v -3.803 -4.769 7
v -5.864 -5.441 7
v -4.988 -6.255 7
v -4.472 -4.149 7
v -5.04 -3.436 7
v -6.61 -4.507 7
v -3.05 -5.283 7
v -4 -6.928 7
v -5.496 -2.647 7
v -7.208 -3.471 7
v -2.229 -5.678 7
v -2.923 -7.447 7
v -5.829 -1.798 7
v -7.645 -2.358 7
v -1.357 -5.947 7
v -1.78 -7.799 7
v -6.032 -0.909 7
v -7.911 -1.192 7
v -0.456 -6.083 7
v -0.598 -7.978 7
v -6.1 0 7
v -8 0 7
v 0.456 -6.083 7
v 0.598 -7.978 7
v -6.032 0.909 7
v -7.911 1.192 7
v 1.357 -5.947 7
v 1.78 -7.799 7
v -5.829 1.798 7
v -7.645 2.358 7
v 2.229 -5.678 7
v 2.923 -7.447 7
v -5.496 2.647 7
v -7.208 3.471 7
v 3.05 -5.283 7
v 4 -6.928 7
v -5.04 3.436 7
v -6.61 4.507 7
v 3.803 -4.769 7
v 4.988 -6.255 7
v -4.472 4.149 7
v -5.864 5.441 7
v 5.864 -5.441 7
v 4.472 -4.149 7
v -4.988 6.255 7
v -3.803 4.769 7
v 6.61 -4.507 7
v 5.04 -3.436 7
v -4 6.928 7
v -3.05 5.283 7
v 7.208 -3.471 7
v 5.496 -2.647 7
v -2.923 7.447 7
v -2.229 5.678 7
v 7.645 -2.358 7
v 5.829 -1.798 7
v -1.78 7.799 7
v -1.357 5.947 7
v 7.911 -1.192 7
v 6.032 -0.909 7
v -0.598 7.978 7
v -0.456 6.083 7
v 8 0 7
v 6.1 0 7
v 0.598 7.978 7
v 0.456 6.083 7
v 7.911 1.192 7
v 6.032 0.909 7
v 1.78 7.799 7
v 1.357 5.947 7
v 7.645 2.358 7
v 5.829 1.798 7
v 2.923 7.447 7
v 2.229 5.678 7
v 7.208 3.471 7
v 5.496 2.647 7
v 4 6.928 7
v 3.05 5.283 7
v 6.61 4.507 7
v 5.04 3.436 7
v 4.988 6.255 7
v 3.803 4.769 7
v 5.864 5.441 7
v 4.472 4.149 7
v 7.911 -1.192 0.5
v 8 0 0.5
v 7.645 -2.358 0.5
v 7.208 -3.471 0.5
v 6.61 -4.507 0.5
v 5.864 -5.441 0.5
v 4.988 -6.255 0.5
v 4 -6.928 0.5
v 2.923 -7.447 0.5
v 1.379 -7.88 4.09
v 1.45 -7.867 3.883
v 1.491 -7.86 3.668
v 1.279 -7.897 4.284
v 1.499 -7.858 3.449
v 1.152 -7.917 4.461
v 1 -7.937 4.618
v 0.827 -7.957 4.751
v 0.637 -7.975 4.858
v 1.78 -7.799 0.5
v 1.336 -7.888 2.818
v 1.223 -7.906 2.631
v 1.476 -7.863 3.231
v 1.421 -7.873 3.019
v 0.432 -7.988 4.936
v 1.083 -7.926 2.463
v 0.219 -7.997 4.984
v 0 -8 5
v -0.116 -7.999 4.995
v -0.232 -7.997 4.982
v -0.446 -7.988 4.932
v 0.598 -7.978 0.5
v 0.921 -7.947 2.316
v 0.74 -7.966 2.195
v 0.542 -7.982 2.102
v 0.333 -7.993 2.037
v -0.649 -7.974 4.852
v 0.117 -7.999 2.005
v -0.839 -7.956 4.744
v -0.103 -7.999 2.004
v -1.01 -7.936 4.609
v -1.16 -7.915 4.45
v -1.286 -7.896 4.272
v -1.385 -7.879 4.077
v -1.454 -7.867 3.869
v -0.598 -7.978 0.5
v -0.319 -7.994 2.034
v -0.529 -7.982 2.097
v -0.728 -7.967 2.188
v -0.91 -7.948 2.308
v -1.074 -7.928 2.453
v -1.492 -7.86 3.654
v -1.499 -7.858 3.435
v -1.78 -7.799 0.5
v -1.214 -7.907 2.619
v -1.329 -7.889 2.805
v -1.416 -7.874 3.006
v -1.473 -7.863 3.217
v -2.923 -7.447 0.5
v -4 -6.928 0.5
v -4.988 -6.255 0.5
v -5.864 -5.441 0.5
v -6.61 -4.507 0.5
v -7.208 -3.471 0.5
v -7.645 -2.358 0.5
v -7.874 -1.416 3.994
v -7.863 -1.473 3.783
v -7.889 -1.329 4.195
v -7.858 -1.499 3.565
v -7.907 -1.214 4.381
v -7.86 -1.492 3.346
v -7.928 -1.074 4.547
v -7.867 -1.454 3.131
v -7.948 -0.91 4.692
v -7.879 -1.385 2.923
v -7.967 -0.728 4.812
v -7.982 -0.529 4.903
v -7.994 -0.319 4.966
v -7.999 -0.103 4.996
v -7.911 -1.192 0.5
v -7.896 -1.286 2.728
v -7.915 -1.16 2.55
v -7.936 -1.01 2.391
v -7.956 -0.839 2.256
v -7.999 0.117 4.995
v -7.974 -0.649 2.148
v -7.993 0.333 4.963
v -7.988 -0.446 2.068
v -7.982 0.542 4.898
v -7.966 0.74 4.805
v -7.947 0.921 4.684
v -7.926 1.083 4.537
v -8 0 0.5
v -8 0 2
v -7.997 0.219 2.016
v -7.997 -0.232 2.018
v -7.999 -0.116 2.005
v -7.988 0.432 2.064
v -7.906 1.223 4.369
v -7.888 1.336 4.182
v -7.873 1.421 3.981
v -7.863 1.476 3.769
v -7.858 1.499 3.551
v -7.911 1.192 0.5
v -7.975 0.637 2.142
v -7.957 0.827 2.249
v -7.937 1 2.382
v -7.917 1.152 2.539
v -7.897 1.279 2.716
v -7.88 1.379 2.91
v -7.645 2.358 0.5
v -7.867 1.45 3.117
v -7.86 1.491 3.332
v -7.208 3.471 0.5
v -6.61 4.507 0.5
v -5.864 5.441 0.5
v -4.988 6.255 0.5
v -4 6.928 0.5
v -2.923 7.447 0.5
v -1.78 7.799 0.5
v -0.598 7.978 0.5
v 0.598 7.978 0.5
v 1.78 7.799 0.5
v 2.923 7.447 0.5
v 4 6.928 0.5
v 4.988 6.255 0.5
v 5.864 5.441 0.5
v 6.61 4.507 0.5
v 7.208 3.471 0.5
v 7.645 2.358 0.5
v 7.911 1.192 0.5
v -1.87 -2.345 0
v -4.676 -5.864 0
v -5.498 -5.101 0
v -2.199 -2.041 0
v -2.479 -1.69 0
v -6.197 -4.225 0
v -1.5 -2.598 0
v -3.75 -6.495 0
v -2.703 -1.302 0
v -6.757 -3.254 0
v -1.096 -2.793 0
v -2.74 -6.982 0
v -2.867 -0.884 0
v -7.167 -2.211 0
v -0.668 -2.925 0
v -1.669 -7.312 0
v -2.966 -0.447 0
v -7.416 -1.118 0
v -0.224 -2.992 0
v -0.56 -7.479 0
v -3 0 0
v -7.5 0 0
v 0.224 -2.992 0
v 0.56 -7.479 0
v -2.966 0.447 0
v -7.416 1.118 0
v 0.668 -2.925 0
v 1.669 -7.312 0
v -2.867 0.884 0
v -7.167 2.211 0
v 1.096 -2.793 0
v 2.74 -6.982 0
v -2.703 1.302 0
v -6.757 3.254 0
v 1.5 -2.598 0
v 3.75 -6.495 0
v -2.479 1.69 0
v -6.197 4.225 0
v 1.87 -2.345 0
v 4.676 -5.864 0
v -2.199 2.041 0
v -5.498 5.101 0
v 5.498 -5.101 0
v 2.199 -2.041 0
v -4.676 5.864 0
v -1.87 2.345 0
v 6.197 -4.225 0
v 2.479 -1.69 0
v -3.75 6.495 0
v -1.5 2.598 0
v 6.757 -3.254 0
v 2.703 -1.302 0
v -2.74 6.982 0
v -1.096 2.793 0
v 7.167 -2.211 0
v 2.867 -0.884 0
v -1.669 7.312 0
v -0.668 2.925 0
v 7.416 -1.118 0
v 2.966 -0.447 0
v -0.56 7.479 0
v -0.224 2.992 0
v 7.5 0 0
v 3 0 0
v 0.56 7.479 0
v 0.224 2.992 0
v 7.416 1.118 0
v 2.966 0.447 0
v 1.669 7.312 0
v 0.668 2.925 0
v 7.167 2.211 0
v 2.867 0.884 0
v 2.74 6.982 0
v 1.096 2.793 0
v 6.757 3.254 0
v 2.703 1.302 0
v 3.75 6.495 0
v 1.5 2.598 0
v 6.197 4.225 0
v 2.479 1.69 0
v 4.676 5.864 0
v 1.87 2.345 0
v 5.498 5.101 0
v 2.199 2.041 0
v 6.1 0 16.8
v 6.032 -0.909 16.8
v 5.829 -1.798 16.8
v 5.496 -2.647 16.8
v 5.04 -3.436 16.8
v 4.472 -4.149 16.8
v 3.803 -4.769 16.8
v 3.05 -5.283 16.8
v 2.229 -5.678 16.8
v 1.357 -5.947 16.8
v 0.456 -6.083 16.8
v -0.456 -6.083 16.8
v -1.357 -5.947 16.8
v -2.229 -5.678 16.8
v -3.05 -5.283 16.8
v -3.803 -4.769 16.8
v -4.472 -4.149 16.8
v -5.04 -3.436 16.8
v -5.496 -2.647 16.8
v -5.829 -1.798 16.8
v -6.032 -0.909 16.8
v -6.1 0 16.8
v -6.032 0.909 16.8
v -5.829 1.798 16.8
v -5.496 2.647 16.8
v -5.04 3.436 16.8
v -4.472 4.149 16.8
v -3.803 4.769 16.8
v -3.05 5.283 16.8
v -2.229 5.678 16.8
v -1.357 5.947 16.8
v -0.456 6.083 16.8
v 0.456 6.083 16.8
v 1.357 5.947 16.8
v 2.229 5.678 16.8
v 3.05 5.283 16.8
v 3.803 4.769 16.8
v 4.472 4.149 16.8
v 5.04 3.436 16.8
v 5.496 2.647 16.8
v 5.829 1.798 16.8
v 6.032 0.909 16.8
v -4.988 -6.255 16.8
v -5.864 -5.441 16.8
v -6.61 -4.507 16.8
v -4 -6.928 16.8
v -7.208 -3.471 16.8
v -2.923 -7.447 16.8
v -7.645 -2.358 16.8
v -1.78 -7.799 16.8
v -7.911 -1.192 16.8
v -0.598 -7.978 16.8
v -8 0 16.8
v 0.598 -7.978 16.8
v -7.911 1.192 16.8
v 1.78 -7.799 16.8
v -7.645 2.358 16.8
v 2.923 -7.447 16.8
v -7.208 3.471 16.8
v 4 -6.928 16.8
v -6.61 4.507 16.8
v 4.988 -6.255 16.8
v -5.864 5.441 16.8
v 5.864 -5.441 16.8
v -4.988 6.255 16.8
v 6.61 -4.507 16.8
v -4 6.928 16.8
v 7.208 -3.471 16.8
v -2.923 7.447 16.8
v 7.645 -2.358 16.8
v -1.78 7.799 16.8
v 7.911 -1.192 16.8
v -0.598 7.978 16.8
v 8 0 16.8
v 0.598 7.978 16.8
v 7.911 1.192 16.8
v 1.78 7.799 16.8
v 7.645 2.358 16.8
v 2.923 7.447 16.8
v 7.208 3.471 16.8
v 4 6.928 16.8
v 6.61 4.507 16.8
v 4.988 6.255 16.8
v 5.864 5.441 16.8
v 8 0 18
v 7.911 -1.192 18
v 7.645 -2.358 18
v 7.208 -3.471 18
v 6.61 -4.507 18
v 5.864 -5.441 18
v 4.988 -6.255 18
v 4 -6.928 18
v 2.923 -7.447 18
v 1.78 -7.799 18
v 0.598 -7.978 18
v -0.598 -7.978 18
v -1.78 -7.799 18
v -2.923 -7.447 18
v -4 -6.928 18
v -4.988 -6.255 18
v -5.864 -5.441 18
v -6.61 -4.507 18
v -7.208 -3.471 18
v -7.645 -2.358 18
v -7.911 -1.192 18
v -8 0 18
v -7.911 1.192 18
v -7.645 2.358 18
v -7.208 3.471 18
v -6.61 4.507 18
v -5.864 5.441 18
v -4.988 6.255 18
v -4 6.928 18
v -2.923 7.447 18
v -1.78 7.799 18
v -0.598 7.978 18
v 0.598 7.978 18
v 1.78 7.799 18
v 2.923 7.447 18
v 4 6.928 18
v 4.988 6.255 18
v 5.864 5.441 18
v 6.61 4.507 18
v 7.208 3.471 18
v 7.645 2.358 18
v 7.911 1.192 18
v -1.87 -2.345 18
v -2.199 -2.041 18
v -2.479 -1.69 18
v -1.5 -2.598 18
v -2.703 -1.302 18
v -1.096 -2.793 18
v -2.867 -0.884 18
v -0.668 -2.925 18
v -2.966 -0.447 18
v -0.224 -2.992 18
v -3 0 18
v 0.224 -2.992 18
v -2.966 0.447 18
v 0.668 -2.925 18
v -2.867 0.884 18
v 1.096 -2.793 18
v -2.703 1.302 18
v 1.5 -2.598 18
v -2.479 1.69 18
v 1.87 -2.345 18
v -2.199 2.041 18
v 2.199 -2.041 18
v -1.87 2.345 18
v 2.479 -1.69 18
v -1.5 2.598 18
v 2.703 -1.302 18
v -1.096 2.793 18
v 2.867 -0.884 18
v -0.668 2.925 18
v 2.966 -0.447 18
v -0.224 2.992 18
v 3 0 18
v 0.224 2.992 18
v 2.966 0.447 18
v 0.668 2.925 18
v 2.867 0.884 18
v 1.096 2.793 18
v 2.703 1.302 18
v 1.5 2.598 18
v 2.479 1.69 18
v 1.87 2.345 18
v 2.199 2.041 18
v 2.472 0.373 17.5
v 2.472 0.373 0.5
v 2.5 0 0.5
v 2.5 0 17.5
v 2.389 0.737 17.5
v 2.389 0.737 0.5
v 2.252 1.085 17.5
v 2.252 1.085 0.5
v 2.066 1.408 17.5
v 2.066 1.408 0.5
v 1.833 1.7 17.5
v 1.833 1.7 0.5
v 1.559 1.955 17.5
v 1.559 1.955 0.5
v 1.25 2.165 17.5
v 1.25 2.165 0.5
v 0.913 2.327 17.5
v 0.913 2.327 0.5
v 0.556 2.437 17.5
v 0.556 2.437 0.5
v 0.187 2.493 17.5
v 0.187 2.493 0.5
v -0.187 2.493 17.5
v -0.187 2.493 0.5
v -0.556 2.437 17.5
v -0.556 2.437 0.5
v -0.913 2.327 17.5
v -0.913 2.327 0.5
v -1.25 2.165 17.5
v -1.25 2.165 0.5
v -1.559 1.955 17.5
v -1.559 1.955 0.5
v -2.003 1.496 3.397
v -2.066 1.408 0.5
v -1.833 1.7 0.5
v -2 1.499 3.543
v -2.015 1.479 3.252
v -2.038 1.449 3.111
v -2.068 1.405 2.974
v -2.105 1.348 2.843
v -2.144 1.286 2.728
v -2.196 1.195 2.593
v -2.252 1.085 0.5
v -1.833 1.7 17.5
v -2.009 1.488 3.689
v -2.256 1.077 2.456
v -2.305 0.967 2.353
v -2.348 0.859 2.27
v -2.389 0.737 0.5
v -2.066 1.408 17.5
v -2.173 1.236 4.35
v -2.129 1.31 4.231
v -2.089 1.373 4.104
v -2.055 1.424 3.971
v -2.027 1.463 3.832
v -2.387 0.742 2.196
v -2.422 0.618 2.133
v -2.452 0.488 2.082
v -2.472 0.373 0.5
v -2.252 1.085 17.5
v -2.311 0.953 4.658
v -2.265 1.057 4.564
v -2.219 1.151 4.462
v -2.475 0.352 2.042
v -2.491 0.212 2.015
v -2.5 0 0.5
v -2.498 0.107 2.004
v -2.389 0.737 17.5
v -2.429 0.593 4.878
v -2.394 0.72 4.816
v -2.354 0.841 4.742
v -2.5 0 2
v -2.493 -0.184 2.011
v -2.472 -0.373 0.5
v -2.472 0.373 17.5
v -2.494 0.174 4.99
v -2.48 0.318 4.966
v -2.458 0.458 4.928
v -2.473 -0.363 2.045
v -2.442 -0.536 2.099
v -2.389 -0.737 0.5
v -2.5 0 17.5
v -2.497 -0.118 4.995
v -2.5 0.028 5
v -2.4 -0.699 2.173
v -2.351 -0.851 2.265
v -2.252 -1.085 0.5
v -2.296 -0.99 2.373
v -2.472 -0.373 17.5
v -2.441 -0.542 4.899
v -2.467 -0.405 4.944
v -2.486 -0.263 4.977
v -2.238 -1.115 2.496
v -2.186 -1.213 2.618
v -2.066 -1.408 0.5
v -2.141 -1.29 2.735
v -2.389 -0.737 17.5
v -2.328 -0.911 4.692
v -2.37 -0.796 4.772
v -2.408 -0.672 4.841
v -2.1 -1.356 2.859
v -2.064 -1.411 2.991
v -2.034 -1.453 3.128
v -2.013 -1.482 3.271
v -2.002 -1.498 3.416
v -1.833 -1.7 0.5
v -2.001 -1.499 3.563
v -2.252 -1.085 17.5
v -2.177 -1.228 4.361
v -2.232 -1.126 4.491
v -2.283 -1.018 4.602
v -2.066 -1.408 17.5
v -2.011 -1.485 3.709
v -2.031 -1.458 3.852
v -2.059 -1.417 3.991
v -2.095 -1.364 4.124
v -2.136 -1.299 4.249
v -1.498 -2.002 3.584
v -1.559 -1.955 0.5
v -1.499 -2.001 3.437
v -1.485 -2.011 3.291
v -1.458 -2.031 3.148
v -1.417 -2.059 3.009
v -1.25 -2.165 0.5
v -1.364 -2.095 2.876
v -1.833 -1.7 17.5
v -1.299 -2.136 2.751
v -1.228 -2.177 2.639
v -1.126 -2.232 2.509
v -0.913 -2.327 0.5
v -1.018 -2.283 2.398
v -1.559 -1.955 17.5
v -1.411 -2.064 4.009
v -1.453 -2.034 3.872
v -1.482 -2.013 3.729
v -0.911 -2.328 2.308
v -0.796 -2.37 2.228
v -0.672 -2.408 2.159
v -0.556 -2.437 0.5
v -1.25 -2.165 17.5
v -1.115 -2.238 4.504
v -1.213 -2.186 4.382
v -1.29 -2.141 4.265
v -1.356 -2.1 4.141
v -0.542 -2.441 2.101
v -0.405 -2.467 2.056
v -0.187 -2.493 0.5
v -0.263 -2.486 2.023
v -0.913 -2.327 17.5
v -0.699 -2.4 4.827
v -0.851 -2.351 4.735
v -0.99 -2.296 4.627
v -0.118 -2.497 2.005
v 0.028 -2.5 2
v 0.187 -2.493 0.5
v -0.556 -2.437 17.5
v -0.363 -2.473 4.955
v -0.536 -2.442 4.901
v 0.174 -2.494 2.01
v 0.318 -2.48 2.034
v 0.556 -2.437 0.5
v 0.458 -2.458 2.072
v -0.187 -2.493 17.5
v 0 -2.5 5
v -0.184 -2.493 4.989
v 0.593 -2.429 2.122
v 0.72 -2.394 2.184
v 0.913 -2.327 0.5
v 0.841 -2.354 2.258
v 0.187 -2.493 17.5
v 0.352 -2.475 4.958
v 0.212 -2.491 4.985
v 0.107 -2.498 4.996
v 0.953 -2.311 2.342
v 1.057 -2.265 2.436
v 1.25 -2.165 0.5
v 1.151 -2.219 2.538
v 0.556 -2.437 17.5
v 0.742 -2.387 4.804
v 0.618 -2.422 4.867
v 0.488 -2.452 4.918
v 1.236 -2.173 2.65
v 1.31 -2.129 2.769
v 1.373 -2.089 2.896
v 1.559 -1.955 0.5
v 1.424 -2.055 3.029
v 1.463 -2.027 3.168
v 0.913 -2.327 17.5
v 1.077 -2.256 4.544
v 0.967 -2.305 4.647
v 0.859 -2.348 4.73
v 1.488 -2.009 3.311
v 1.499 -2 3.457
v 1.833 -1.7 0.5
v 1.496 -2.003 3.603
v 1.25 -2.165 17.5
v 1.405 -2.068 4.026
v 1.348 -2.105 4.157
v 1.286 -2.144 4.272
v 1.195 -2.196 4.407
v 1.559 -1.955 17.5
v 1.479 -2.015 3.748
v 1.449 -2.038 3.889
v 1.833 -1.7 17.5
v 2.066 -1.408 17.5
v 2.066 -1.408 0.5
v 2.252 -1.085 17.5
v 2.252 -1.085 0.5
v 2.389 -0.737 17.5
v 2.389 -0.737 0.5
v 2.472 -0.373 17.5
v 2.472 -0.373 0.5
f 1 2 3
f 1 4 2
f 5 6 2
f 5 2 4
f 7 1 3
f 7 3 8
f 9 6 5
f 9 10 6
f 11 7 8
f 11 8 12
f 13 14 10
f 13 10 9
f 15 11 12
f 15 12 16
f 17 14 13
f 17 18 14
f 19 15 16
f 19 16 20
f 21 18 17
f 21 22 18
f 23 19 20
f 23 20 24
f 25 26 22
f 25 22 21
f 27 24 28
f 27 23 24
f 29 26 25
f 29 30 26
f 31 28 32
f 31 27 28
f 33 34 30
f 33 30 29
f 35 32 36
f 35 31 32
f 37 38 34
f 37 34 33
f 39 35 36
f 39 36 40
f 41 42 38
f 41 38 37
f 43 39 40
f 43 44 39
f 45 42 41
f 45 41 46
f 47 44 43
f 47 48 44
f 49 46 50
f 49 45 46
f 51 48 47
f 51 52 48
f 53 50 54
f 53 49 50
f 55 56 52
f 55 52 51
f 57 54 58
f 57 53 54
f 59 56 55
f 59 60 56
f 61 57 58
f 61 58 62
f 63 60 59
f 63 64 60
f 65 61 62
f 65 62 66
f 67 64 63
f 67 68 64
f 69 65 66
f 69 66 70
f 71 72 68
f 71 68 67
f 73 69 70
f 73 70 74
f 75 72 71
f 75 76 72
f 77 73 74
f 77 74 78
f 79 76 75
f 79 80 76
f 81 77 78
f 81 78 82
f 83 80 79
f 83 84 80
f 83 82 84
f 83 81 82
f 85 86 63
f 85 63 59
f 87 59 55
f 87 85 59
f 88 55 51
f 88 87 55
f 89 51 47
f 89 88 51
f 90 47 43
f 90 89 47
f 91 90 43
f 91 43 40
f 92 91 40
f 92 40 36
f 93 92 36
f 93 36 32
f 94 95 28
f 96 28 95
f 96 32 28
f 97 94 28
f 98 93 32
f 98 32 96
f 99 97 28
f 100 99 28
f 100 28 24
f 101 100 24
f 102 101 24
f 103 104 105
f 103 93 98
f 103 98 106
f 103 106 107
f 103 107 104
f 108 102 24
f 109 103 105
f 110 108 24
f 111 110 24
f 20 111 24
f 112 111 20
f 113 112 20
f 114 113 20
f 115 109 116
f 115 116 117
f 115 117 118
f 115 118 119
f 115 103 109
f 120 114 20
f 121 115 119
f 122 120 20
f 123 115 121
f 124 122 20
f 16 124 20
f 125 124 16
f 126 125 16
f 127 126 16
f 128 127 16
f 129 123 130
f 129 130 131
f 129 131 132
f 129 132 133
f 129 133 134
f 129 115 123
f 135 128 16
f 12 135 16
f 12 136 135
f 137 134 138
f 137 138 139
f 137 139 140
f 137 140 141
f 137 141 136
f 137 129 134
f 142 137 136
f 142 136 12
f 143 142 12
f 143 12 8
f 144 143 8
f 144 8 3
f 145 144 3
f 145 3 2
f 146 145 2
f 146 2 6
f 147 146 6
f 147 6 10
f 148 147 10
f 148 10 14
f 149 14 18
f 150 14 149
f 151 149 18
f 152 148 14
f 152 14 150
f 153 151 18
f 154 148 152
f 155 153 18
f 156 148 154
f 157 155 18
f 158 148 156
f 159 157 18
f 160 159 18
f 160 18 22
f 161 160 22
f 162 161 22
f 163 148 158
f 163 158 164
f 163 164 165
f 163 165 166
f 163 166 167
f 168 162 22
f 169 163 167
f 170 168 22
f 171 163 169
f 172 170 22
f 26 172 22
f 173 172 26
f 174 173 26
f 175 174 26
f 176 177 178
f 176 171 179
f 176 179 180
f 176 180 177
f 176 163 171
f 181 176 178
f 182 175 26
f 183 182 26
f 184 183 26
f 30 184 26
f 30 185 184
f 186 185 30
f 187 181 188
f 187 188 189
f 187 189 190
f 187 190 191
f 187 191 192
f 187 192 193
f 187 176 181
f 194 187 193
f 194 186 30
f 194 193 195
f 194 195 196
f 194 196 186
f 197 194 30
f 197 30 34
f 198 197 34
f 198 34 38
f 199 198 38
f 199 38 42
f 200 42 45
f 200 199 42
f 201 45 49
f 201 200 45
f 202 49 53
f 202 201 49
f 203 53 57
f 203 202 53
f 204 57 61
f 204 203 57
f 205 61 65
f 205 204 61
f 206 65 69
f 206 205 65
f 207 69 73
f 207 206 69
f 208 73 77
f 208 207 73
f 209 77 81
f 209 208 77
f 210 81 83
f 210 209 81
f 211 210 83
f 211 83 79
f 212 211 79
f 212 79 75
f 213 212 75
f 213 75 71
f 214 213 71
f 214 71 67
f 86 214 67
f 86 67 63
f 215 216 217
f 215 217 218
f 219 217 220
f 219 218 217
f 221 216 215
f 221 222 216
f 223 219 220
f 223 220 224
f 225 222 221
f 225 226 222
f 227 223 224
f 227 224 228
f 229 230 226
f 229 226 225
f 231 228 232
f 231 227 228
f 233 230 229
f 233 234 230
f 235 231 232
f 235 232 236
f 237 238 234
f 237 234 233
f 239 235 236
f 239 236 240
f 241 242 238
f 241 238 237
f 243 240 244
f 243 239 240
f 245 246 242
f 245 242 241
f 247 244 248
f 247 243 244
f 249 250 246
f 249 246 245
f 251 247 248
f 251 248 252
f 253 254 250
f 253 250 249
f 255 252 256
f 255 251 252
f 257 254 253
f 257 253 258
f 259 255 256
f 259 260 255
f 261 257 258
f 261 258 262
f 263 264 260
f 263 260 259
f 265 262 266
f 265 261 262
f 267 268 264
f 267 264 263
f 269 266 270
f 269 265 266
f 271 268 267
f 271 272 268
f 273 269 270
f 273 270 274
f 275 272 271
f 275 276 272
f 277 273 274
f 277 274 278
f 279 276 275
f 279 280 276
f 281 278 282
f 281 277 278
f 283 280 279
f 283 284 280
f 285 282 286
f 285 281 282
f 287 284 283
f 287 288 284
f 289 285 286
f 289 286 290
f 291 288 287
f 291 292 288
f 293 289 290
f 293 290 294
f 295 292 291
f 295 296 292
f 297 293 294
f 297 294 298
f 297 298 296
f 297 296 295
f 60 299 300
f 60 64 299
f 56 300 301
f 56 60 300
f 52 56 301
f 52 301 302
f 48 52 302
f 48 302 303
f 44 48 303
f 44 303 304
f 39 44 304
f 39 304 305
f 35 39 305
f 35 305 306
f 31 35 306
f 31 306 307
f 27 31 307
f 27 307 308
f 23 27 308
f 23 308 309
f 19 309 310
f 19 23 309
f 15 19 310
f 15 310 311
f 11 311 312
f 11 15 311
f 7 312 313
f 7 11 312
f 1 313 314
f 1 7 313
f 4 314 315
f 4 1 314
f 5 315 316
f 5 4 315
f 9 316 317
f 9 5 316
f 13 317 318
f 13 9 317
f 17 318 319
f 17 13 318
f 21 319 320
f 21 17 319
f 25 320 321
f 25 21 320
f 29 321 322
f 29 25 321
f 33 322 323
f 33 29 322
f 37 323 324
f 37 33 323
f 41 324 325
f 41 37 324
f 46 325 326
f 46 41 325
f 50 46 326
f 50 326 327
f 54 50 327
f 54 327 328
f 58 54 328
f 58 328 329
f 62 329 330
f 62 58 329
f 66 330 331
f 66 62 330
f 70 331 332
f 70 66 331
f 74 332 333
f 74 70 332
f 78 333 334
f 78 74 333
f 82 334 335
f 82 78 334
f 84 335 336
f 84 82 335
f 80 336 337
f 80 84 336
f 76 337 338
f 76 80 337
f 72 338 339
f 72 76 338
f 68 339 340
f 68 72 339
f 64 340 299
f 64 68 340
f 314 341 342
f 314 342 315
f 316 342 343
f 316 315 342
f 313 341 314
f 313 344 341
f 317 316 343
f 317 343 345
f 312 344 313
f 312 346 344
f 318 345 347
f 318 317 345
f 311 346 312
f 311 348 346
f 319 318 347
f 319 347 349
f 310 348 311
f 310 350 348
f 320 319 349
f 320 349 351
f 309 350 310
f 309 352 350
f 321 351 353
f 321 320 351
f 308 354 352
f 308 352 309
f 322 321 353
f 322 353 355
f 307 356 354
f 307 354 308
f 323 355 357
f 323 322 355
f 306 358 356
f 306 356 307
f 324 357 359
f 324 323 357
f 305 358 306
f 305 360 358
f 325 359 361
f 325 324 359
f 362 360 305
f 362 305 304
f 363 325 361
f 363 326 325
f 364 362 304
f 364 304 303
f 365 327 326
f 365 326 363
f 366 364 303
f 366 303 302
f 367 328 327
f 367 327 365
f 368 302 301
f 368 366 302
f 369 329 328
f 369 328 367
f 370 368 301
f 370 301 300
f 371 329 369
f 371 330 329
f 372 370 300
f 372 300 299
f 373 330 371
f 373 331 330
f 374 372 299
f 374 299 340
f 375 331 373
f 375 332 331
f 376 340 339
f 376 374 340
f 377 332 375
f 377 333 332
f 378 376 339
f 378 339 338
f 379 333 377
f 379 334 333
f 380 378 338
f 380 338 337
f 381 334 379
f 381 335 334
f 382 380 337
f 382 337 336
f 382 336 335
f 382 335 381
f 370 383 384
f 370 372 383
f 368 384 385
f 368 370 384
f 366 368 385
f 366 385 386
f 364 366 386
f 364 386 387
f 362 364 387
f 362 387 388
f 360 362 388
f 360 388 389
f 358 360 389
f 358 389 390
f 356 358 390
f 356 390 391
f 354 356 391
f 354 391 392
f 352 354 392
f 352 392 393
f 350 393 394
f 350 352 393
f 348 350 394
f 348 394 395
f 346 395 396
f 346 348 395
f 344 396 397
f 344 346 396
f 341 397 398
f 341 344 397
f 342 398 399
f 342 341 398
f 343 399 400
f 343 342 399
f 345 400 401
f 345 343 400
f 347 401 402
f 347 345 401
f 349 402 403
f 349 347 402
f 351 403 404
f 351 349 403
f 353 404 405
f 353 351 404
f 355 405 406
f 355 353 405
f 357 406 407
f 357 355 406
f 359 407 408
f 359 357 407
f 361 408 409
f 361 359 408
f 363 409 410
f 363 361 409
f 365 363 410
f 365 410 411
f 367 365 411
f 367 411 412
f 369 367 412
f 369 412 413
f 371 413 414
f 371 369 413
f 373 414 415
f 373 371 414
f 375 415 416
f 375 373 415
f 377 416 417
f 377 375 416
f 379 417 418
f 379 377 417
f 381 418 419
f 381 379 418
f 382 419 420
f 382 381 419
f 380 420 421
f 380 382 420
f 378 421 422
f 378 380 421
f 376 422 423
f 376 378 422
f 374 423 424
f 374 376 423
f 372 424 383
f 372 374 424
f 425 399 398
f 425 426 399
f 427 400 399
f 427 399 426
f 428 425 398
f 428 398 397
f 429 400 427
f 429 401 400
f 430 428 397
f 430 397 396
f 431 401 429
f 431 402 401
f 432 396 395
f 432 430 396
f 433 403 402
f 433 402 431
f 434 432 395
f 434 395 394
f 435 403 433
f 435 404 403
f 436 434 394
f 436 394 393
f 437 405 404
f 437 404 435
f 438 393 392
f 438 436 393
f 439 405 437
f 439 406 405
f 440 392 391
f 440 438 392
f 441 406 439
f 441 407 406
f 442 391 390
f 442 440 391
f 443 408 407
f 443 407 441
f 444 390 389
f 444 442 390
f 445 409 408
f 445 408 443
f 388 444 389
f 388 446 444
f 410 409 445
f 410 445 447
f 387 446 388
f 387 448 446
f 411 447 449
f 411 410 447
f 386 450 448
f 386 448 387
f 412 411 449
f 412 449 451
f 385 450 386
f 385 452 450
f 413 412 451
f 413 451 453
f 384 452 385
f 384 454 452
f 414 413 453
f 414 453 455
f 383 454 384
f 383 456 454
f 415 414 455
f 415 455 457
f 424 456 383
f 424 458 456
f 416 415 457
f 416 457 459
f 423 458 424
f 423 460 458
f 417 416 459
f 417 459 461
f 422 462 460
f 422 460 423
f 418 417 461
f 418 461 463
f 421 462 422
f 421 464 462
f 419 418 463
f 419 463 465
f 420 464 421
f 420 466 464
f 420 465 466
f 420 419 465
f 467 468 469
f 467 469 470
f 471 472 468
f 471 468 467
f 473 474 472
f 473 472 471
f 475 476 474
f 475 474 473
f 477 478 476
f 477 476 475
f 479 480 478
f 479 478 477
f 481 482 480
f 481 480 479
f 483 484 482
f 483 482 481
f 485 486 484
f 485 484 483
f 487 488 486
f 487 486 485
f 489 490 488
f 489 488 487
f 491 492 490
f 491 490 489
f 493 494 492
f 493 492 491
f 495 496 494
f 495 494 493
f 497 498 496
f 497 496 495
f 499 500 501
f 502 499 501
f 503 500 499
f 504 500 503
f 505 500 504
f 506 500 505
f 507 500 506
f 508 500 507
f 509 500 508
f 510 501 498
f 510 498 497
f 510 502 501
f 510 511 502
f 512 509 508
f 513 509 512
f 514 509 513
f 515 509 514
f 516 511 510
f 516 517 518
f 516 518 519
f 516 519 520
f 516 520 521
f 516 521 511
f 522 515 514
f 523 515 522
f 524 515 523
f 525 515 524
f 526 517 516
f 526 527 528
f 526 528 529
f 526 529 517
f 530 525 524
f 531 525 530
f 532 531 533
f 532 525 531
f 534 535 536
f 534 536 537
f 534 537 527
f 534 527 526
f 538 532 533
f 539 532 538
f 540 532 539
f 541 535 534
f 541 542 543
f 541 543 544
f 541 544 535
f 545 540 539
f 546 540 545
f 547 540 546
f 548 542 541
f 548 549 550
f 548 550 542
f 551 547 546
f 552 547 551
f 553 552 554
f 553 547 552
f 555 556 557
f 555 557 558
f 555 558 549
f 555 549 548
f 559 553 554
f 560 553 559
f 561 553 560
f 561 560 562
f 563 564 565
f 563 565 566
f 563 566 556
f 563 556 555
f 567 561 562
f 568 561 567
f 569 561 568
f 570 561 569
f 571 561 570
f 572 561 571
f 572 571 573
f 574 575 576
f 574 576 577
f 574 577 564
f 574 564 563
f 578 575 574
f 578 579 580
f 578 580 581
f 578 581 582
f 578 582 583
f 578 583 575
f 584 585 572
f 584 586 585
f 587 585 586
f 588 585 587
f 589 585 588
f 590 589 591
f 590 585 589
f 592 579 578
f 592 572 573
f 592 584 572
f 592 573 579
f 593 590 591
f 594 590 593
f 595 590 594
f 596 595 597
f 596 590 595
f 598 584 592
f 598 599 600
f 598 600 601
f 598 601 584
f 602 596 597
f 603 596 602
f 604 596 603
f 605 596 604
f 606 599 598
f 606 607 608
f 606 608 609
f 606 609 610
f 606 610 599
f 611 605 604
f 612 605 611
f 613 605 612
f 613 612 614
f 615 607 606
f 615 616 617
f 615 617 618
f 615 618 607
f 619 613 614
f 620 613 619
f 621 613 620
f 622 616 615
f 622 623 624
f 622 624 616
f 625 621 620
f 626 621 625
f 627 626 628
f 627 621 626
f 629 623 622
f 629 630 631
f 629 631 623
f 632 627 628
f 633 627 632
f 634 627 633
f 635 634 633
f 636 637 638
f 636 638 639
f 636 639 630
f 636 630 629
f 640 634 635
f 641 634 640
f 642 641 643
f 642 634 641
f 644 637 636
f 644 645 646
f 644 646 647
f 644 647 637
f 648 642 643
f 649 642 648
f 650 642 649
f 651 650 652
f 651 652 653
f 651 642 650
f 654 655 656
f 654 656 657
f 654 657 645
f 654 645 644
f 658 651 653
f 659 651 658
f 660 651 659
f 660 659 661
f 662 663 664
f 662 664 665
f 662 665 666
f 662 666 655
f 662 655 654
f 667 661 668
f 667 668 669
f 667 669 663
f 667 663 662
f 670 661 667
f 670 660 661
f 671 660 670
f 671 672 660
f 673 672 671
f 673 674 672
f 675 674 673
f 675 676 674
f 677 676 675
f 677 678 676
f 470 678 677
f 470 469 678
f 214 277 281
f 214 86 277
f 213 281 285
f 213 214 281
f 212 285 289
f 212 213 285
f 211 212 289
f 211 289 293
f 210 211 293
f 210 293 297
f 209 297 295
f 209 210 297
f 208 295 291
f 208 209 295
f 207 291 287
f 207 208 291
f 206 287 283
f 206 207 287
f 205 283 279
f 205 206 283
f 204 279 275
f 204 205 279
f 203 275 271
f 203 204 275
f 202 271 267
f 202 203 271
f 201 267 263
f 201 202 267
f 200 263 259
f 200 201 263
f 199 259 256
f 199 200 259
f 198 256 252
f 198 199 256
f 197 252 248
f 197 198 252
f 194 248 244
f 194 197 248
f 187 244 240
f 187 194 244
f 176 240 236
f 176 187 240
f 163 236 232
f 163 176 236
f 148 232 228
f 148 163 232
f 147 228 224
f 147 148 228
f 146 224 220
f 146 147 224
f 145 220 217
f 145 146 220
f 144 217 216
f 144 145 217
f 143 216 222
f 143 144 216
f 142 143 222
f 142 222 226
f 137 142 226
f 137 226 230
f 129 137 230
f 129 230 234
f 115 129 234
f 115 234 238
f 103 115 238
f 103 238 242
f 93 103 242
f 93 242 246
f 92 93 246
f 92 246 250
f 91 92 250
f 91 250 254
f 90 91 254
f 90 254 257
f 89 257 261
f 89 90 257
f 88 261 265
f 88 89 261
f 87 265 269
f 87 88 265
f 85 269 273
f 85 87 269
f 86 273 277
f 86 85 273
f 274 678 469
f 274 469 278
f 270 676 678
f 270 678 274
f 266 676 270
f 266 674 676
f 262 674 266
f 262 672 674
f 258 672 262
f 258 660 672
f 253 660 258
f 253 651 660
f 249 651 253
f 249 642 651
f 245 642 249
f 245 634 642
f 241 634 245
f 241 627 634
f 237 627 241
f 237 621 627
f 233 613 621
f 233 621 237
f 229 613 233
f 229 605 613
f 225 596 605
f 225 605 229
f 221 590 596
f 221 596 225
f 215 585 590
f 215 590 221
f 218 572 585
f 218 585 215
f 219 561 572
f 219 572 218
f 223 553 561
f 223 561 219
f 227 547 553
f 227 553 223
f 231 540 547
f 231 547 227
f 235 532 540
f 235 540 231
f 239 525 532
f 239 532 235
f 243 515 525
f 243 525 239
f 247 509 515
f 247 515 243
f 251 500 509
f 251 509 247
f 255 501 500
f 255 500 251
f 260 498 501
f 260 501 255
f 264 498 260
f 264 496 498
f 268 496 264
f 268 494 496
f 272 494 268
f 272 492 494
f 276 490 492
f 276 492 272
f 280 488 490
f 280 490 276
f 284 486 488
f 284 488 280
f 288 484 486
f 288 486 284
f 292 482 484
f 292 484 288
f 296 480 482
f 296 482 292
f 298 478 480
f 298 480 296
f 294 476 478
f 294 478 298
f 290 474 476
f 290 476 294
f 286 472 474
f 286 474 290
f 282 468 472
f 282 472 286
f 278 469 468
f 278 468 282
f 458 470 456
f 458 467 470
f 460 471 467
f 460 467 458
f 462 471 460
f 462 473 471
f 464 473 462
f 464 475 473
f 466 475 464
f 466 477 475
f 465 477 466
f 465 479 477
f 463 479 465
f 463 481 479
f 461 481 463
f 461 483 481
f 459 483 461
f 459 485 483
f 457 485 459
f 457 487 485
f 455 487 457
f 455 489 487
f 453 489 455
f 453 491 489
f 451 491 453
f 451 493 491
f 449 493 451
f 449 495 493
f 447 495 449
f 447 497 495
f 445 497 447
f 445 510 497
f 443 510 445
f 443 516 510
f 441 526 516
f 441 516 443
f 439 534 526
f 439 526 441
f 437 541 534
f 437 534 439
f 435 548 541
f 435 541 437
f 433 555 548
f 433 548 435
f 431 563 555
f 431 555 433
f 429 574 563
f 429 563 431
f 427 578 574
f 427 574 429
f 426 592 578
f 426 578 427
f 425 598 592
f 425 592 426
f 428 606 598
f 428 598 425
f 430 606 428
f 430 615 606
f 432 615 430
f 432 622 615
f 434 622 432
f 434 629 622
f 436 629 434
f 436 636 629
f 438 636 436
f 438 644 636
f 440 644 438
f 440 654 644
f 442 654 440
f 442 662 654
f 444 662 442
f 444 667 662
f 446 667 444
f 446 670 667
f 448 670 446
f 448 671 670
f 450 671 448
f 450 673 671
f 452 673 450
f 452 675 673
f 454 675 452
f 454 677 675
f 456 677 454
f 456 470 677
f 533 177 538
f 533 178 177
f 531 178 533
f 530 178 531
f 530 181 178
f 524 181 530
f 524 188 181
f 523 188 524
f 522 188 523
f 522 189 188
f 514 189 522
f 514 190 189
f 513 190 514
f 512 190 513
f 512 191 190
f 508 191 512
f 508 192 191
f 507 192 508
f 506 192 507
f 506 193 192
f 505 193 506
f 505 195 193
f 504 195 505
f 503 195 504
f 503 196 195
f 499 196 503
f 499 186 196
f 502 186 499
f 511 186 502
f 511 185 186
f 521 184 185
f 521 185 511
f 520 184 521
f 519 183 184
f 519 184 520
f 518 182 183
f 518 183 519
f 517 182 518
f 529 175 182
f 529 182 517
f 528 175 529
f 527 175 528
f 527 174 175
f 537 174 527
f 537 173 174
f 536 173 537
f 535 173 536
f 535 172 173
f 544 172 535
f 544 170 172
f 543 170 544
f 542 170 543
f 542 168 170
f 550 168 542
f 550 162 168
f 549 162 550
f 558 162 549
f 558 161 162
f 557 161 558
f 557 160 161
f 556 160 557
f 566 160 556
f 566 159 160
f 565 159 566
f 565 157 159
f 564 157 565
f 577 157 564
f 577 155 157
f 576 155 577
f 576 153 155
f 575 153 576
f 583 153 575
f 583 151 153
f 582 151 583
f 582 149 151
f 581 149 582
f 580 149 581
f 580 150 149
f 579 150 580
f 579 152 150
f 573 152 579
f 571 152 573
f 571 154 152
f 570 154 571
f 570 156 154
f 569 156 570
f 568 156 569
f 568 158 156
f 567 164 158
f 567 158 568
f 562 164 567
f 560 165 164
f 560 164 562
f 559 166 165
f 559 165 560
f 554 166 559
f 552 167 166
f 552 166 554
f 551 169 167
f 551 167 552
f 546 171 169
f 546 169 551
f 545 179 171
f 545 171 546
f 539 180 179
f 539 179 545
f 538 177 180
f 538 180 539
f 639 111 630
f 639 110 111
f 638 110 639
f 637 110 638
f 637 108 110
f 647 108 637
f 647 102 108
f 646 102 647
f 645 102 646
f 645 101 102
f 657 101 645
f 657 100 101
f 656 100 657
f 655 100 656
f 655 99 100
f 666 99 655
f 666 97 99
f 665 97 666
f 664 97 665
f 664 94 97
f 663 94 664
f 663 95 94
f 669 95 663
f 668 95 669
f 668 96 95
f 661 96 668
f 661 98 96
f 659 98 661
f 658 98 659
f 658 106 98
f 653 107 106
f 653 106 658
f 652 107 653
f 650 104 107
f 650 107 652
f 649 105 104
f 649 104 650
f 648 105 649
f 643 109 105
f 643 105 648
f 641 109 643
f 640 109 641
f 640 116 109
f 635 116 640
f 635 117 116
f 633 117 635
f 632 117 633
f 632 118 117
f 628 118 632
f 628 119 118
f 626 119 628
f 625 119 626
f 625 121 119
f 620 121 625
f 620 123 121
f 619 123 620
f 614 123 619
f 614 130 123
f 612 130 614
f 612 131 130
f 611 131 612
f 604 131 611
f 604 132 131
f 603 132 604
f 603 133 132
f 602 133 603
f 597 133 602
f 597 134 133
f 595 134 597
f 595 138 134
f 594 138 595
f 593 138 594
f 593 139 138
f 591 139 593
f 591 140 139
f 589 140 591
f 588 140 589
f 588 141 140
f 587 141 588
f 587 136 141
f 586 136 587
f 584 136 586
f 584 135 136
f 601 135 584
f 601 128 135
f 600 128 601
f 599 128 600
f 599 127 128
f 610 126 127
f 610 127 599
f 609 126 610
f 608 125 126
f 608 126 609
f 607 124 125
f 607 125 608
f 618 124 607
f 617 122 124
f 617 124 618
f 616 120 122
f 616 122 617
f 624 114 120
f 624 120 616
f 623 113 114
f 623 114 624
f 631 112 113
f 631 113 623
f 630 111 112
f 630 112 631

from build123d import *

# Parameters (mm, degrees)
CROQUIS1_R              = 8
SALIENTE_EXTRUIR1_DEPTH = 7
CROQUIS2_R              = 6.1
SALIENTE_EXTRUIR2_DEPTH = 9.8
CROQUIS3_R              = 8
SALIENTE_EXTRUIR3_DEPTH = 1.2
CROQUIS4_R              = 2.5
CORTAR_EXTRUIR1_DEPTH   = 22.260291625
CHAFL_N1_SIZE           = 0.5
CROQUIS5_R              = 1.5
CORTAR_EXTRUIR2_DEPTH   = 22.260291625
CROQUIS6_R              = 1.5
CORTAR_EXTRUIR3_DEPTH   = 22.260291701


with BuildPart() as part:
    # Croquis1 → Saliente-Extruir1 (new body)
    with BuildSketch(Plane.XY):
        Circle(CROQUIS1_R)
    extrude(amount=SALIENTE_EXTRUIR1_DEPTH)

    # Croquis2 → Saliente-Extruir2 (add)
    with BuildSketch(Plane.XY.offset(7)):
        Circle(CROQUIS2_R)
    extrude(amount=SALIENTE_EXTRUIR2_DEPTH)

    # Croquis3 → Saliente-Extruir3 (add)
    with BuildSketch(Plane.XY.offset(16.8)):
        Circle(CROQUIS3_R)
    extrude(amount=SALIENTE_EXTRUIR3_DEPTH)

    # Croquis4 → Cortar-Extruir1 (cut, through all)
    with BuildSketch(Plane.XY.offset(18)):
        Circle(CROQUIS4_R)
    extrude(amount=-CORTAR_EXTRUIR1_DEPTH, mode=Mode.SUBTRACT)

    # Chaflán1
    chafl_n1_edges = [part.edges().sort_by_distance(p)[0] for p in [
        (-2.5, 0, 0),
        (-2.5, 0, 18),
        (-8, 0, 0),
    ]]
    chamfer(chafl_n1_edges, length=CHAFL_N1_SIZE)

    # Croquis5 → Cortar-Extruir2 (cut, through all)
    with BuildSketch(Plane(origin=(0, 0, 0), x_dir=(0, 0, -1), z_dir=(1, 0, 0))):
        with Locations((-3.5, 0)):
            Circle(CROQUIS5_R)
    extrude(amount=-CORTAR_EXTRUIR2_DEPTH, mode=Mode.SUBTRACT)

    # Croquis6 → Cortar-Extruir3 (cut, through all)
    with BuildSketch(Plane(origin=(0, 0, 0), x_dir=(1, 0, 0), z_dir=(0, 1, 0))):
        with Locations(Location((0, -3.5, 0), (0, 0, 270))):
            Circle(CROQUIS6_R)
    extrude(amount=-CORTAR_EXTRUIR3_DEPTH, mode=Mode.SUBTRACT)


solid = part.part
